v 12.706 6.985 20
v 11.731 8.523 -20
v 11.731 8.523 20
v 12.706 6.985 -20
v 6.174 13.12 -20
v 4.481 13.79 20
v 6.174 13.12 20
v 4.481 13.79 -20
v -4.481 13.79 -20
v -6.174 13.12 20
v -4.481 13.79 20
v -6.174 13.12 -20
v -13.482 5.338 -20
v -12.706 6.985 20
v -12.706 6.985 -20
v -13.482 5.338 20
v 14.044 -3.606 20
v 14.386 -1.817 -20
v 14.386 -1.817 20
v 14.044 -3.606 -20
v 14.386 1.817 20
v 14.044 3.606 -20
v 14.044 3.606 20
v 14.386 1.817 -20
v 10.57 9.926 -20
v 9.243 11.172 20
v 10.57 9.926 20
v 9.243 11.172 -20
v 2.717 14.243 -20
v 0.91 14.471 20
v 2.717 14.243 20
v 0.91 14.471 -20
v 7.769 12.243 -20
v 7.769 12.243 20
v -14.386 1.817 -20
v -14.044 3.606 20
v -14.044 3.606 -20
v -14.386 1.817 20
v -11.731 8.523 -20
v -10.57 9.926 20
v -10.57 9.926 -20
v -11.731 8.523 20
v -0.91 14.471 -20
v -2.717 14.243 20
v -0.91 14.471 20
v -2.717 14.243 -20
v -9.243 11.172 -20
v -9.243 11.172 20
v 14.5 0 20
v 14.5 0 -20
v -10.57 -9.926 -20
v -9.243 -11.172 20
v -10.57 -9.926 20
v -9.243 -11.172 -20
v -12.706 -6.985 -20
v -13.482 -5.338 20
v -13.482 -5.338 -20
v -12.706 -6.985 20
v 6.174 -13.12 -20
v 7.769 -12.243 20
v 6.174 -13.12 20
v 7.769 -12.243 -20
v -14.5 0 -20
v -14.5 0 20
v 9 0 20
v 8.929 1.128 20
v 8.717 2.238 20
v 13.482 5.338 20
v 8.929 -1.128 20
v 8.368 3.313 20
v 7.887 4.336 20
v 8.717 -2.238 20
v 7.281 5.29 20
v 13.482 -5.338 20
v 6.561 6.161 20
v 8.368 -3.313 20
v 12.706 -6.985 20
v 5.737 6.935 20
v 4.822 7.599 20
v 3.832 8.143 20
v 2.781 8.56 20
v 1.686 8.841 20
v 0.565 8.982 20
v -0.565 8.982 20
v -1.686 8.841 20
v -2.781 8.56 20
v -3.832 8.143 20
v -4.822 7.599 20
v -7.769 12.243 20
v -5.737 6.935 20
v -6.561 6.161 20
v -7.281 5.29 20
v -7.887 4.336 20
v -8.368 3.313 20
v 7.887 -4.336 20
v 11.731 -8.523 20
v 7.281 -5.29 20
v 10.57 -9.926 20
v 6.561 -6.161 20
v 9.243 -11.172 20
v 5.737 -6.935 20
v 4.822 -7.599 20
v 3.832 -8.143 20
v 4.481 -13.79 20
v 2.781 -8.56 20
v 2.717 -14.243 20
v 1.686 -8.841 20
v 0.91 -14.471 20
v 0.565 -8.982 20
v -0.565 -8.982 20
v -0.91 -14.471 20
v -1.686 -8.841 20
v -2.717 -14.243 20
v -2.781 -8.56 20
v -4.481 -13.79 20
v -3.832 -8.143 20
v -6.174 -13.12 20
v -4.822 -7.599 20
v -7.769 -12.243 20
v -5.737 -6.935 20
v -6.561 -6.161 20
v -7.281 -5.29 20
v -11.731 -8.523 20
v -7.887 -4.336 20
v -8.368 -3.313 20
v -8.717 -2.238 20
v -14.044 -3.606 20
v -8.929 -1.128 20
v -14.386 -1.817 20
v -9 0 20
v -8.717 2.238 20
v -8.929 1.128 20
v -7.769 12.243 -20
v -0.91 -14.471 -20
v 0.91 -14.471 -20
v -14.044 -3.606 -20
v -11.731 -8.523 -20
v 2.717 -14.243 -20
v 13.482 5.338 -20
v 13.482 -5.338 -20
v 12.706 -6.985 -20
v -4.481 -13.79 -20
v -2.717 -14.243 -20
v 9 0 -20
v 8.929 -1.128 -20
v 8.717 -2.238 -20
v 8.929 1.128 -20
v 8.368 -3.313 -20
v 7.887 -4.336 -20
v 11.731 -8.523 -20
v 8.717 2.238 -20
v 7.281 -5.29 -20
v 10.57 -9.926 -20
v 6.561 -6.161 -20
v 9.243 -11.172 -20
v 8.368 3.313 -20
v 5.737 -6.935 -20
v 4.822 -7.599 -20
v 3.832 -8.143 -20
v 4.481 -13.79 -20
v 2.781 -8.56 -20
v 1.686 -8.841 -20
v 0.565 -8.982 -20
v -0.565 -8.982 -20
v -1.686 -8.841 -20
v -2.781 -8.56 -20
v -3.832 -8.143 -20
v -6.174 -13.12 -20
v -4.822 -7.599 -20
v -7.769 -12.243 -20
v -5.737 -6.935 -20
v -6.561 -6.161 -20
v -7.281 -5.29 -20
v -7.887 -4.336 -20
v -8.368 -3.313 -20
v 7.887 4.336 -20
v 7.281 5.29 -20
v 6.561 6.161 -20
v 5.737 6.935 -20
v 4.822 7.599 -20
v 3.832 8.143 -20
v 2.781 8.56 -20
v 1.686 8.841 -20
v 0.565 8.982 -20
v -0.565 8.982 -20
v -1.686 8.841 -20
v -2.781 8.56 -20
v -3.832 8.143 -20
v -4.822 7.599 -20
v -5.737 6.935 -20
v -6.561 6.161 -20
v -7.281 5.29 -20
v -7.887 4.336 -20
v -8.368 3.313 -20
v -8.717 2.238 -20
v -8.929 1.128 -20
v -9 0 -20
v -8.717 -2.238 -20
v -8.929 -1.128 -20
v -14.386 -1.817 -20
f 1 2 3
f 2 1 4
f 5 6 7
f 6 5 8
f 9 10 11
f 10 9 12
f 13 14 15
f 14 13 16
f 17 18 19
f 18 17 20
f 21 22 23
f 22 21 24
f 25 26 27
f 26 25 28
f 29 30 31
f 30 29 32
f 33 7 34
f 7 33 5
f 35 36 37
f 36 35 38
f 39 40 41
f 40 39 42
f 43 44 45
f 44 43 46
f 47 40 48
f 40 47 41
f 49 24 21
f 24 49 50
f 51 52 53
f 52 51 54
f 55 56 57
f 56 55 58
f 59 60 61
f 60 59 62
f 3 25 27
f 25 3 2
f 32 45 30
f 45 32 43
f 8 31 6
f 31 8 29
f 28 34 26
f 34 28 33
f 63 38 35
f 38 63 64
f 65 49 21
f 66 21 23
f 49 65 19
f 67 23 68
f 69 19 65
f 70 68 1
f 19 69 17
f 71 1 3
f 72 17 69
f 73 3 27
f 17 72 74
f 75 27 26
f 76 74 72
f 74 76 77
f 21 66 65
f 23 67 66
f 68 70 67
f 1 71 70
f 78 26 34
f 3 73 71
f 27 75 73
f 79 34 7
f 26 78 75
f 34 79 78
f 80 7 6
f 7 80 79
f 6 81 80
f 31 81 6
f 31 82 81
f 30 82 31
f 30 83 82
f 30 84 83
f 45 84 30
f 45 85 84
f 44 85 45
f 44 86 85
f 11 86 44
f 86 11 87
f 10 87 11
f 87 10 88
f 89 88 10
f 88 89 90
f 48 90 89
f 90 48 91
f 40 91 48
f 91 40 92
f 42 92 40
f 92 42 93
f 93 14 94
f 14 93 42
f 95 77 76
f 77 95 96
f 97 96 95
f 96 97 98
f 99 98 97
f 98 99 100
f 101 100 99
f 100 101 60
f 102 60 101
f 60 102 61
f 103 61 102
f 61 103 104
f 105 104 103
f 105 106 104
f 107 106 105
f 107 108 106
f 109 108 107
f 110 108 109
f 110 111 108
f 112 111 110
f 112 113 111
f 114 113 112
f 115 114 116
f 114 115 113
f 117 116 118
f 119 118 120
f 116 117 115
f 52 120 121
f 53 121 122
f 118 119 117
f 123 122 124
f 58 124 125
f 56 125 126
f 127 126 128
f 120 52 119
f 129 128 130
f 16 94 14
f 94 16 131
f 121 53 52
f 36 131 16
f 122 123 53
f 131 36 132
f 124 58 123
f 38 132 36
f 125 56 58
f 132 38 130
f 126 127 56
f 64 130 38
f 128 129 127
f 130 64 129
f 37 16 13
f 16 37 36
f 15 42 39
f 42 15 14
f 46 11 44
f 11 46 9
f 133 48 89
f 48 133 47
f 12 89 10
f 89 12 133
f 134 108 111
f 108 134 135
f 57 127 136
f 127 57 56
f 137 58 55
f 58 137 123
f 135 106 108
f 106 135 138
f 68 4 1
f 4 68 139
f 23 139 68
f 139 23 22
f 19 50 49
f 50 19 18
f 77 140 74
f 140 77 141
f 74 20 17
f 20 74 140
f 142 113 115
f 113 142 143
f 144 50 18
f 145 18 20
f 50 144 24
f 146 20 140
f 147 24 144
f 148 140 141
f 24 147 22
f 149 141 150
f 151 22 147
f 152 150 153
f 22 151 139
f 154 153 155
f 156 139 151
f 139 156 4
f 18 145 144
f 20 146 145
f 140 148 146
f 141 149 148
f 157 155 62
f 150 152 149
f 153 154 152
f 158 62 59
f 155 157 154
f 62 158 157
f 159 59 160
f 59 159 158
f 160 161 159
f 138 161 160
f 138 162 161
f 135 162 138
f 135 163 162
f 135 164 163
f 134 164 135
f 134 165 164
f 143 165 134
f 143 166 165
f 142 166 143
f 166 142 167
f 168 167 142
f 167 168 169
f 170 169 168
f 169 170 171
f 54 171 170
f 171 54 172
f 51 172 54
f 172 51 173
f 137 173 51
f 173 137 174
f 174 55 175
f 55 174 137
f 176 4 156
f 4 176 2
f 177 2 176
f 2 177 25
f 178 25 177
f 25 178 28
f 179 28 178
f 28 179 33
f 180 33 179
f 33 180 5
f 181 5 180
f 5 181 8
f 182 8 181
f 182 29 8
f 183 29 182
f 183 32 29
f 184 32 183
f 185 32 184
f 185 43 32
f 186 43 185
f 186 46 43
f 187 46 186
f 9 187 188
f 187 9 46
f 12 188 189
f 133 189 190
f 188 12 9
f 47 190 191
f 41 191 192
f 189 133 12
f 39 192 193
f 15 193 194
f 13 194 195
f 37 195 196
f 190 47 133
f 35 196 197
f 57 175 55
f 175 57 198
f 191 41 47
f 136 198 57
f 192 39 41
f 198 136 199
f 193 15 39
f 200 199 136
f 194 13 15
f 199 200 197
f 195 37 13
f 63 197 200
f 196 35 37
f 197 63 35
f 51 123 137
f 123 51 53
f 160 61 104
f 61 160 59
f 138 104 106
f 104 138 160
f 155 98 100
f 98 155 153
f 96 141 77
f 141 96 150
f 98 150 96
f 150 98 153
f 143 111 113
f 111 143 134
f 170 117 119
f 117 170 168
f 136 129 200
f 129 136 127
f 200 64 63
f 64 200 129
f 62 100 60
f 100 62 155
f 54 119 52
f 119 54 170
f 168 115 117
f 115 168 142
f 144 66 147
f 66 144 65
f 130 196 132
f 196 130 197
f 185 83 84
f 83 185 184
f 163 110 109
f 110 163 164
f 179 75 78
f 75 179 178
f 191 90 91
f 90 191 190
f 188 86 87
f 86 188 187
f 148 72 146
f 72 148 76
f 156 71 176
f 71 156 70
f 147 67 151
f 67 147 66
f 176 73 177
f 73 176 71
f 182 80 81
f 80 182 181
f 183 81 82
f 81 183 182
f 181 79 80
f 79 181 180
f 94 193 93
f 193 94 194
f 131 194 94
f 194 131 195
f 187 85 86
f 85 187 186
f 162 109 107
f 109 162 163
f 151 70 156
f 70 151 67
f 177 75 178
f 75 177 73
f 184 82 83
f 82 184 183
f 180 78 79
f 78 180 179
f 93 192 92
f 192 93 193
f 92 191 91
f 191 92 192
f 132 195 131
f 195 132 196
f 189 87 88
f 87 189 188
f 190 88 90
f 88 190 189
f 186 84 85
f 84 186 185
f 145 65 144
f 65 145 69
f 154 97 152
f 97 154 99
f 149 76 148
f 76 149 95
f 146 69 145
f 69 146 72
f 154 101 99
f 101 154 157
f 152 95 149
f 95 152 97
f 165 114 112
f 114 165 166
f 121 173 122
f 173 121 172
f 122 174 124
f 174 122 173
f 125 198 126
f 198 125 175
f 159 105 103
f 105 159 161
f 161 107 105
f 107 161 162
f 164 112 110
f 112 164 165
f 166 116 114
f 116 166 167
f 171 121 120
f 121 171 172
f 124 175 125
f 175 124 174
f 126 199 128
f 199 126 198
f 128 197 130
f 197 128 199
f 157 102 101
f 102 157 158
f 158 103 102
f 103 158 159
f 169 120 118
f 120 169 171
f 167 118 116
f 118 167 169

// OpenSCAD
$fn = 50;


difference() {
	union() {
		translate(v = [0, 0, -20.0000000000]) {
			cylinder(h = 40, r = 14.5000000000);
		}
	}
	union() {
		translate(v = [0, 0, -100.0000000000]) {
			cylinder(h = 200, r = 9);
		}
	}
}
